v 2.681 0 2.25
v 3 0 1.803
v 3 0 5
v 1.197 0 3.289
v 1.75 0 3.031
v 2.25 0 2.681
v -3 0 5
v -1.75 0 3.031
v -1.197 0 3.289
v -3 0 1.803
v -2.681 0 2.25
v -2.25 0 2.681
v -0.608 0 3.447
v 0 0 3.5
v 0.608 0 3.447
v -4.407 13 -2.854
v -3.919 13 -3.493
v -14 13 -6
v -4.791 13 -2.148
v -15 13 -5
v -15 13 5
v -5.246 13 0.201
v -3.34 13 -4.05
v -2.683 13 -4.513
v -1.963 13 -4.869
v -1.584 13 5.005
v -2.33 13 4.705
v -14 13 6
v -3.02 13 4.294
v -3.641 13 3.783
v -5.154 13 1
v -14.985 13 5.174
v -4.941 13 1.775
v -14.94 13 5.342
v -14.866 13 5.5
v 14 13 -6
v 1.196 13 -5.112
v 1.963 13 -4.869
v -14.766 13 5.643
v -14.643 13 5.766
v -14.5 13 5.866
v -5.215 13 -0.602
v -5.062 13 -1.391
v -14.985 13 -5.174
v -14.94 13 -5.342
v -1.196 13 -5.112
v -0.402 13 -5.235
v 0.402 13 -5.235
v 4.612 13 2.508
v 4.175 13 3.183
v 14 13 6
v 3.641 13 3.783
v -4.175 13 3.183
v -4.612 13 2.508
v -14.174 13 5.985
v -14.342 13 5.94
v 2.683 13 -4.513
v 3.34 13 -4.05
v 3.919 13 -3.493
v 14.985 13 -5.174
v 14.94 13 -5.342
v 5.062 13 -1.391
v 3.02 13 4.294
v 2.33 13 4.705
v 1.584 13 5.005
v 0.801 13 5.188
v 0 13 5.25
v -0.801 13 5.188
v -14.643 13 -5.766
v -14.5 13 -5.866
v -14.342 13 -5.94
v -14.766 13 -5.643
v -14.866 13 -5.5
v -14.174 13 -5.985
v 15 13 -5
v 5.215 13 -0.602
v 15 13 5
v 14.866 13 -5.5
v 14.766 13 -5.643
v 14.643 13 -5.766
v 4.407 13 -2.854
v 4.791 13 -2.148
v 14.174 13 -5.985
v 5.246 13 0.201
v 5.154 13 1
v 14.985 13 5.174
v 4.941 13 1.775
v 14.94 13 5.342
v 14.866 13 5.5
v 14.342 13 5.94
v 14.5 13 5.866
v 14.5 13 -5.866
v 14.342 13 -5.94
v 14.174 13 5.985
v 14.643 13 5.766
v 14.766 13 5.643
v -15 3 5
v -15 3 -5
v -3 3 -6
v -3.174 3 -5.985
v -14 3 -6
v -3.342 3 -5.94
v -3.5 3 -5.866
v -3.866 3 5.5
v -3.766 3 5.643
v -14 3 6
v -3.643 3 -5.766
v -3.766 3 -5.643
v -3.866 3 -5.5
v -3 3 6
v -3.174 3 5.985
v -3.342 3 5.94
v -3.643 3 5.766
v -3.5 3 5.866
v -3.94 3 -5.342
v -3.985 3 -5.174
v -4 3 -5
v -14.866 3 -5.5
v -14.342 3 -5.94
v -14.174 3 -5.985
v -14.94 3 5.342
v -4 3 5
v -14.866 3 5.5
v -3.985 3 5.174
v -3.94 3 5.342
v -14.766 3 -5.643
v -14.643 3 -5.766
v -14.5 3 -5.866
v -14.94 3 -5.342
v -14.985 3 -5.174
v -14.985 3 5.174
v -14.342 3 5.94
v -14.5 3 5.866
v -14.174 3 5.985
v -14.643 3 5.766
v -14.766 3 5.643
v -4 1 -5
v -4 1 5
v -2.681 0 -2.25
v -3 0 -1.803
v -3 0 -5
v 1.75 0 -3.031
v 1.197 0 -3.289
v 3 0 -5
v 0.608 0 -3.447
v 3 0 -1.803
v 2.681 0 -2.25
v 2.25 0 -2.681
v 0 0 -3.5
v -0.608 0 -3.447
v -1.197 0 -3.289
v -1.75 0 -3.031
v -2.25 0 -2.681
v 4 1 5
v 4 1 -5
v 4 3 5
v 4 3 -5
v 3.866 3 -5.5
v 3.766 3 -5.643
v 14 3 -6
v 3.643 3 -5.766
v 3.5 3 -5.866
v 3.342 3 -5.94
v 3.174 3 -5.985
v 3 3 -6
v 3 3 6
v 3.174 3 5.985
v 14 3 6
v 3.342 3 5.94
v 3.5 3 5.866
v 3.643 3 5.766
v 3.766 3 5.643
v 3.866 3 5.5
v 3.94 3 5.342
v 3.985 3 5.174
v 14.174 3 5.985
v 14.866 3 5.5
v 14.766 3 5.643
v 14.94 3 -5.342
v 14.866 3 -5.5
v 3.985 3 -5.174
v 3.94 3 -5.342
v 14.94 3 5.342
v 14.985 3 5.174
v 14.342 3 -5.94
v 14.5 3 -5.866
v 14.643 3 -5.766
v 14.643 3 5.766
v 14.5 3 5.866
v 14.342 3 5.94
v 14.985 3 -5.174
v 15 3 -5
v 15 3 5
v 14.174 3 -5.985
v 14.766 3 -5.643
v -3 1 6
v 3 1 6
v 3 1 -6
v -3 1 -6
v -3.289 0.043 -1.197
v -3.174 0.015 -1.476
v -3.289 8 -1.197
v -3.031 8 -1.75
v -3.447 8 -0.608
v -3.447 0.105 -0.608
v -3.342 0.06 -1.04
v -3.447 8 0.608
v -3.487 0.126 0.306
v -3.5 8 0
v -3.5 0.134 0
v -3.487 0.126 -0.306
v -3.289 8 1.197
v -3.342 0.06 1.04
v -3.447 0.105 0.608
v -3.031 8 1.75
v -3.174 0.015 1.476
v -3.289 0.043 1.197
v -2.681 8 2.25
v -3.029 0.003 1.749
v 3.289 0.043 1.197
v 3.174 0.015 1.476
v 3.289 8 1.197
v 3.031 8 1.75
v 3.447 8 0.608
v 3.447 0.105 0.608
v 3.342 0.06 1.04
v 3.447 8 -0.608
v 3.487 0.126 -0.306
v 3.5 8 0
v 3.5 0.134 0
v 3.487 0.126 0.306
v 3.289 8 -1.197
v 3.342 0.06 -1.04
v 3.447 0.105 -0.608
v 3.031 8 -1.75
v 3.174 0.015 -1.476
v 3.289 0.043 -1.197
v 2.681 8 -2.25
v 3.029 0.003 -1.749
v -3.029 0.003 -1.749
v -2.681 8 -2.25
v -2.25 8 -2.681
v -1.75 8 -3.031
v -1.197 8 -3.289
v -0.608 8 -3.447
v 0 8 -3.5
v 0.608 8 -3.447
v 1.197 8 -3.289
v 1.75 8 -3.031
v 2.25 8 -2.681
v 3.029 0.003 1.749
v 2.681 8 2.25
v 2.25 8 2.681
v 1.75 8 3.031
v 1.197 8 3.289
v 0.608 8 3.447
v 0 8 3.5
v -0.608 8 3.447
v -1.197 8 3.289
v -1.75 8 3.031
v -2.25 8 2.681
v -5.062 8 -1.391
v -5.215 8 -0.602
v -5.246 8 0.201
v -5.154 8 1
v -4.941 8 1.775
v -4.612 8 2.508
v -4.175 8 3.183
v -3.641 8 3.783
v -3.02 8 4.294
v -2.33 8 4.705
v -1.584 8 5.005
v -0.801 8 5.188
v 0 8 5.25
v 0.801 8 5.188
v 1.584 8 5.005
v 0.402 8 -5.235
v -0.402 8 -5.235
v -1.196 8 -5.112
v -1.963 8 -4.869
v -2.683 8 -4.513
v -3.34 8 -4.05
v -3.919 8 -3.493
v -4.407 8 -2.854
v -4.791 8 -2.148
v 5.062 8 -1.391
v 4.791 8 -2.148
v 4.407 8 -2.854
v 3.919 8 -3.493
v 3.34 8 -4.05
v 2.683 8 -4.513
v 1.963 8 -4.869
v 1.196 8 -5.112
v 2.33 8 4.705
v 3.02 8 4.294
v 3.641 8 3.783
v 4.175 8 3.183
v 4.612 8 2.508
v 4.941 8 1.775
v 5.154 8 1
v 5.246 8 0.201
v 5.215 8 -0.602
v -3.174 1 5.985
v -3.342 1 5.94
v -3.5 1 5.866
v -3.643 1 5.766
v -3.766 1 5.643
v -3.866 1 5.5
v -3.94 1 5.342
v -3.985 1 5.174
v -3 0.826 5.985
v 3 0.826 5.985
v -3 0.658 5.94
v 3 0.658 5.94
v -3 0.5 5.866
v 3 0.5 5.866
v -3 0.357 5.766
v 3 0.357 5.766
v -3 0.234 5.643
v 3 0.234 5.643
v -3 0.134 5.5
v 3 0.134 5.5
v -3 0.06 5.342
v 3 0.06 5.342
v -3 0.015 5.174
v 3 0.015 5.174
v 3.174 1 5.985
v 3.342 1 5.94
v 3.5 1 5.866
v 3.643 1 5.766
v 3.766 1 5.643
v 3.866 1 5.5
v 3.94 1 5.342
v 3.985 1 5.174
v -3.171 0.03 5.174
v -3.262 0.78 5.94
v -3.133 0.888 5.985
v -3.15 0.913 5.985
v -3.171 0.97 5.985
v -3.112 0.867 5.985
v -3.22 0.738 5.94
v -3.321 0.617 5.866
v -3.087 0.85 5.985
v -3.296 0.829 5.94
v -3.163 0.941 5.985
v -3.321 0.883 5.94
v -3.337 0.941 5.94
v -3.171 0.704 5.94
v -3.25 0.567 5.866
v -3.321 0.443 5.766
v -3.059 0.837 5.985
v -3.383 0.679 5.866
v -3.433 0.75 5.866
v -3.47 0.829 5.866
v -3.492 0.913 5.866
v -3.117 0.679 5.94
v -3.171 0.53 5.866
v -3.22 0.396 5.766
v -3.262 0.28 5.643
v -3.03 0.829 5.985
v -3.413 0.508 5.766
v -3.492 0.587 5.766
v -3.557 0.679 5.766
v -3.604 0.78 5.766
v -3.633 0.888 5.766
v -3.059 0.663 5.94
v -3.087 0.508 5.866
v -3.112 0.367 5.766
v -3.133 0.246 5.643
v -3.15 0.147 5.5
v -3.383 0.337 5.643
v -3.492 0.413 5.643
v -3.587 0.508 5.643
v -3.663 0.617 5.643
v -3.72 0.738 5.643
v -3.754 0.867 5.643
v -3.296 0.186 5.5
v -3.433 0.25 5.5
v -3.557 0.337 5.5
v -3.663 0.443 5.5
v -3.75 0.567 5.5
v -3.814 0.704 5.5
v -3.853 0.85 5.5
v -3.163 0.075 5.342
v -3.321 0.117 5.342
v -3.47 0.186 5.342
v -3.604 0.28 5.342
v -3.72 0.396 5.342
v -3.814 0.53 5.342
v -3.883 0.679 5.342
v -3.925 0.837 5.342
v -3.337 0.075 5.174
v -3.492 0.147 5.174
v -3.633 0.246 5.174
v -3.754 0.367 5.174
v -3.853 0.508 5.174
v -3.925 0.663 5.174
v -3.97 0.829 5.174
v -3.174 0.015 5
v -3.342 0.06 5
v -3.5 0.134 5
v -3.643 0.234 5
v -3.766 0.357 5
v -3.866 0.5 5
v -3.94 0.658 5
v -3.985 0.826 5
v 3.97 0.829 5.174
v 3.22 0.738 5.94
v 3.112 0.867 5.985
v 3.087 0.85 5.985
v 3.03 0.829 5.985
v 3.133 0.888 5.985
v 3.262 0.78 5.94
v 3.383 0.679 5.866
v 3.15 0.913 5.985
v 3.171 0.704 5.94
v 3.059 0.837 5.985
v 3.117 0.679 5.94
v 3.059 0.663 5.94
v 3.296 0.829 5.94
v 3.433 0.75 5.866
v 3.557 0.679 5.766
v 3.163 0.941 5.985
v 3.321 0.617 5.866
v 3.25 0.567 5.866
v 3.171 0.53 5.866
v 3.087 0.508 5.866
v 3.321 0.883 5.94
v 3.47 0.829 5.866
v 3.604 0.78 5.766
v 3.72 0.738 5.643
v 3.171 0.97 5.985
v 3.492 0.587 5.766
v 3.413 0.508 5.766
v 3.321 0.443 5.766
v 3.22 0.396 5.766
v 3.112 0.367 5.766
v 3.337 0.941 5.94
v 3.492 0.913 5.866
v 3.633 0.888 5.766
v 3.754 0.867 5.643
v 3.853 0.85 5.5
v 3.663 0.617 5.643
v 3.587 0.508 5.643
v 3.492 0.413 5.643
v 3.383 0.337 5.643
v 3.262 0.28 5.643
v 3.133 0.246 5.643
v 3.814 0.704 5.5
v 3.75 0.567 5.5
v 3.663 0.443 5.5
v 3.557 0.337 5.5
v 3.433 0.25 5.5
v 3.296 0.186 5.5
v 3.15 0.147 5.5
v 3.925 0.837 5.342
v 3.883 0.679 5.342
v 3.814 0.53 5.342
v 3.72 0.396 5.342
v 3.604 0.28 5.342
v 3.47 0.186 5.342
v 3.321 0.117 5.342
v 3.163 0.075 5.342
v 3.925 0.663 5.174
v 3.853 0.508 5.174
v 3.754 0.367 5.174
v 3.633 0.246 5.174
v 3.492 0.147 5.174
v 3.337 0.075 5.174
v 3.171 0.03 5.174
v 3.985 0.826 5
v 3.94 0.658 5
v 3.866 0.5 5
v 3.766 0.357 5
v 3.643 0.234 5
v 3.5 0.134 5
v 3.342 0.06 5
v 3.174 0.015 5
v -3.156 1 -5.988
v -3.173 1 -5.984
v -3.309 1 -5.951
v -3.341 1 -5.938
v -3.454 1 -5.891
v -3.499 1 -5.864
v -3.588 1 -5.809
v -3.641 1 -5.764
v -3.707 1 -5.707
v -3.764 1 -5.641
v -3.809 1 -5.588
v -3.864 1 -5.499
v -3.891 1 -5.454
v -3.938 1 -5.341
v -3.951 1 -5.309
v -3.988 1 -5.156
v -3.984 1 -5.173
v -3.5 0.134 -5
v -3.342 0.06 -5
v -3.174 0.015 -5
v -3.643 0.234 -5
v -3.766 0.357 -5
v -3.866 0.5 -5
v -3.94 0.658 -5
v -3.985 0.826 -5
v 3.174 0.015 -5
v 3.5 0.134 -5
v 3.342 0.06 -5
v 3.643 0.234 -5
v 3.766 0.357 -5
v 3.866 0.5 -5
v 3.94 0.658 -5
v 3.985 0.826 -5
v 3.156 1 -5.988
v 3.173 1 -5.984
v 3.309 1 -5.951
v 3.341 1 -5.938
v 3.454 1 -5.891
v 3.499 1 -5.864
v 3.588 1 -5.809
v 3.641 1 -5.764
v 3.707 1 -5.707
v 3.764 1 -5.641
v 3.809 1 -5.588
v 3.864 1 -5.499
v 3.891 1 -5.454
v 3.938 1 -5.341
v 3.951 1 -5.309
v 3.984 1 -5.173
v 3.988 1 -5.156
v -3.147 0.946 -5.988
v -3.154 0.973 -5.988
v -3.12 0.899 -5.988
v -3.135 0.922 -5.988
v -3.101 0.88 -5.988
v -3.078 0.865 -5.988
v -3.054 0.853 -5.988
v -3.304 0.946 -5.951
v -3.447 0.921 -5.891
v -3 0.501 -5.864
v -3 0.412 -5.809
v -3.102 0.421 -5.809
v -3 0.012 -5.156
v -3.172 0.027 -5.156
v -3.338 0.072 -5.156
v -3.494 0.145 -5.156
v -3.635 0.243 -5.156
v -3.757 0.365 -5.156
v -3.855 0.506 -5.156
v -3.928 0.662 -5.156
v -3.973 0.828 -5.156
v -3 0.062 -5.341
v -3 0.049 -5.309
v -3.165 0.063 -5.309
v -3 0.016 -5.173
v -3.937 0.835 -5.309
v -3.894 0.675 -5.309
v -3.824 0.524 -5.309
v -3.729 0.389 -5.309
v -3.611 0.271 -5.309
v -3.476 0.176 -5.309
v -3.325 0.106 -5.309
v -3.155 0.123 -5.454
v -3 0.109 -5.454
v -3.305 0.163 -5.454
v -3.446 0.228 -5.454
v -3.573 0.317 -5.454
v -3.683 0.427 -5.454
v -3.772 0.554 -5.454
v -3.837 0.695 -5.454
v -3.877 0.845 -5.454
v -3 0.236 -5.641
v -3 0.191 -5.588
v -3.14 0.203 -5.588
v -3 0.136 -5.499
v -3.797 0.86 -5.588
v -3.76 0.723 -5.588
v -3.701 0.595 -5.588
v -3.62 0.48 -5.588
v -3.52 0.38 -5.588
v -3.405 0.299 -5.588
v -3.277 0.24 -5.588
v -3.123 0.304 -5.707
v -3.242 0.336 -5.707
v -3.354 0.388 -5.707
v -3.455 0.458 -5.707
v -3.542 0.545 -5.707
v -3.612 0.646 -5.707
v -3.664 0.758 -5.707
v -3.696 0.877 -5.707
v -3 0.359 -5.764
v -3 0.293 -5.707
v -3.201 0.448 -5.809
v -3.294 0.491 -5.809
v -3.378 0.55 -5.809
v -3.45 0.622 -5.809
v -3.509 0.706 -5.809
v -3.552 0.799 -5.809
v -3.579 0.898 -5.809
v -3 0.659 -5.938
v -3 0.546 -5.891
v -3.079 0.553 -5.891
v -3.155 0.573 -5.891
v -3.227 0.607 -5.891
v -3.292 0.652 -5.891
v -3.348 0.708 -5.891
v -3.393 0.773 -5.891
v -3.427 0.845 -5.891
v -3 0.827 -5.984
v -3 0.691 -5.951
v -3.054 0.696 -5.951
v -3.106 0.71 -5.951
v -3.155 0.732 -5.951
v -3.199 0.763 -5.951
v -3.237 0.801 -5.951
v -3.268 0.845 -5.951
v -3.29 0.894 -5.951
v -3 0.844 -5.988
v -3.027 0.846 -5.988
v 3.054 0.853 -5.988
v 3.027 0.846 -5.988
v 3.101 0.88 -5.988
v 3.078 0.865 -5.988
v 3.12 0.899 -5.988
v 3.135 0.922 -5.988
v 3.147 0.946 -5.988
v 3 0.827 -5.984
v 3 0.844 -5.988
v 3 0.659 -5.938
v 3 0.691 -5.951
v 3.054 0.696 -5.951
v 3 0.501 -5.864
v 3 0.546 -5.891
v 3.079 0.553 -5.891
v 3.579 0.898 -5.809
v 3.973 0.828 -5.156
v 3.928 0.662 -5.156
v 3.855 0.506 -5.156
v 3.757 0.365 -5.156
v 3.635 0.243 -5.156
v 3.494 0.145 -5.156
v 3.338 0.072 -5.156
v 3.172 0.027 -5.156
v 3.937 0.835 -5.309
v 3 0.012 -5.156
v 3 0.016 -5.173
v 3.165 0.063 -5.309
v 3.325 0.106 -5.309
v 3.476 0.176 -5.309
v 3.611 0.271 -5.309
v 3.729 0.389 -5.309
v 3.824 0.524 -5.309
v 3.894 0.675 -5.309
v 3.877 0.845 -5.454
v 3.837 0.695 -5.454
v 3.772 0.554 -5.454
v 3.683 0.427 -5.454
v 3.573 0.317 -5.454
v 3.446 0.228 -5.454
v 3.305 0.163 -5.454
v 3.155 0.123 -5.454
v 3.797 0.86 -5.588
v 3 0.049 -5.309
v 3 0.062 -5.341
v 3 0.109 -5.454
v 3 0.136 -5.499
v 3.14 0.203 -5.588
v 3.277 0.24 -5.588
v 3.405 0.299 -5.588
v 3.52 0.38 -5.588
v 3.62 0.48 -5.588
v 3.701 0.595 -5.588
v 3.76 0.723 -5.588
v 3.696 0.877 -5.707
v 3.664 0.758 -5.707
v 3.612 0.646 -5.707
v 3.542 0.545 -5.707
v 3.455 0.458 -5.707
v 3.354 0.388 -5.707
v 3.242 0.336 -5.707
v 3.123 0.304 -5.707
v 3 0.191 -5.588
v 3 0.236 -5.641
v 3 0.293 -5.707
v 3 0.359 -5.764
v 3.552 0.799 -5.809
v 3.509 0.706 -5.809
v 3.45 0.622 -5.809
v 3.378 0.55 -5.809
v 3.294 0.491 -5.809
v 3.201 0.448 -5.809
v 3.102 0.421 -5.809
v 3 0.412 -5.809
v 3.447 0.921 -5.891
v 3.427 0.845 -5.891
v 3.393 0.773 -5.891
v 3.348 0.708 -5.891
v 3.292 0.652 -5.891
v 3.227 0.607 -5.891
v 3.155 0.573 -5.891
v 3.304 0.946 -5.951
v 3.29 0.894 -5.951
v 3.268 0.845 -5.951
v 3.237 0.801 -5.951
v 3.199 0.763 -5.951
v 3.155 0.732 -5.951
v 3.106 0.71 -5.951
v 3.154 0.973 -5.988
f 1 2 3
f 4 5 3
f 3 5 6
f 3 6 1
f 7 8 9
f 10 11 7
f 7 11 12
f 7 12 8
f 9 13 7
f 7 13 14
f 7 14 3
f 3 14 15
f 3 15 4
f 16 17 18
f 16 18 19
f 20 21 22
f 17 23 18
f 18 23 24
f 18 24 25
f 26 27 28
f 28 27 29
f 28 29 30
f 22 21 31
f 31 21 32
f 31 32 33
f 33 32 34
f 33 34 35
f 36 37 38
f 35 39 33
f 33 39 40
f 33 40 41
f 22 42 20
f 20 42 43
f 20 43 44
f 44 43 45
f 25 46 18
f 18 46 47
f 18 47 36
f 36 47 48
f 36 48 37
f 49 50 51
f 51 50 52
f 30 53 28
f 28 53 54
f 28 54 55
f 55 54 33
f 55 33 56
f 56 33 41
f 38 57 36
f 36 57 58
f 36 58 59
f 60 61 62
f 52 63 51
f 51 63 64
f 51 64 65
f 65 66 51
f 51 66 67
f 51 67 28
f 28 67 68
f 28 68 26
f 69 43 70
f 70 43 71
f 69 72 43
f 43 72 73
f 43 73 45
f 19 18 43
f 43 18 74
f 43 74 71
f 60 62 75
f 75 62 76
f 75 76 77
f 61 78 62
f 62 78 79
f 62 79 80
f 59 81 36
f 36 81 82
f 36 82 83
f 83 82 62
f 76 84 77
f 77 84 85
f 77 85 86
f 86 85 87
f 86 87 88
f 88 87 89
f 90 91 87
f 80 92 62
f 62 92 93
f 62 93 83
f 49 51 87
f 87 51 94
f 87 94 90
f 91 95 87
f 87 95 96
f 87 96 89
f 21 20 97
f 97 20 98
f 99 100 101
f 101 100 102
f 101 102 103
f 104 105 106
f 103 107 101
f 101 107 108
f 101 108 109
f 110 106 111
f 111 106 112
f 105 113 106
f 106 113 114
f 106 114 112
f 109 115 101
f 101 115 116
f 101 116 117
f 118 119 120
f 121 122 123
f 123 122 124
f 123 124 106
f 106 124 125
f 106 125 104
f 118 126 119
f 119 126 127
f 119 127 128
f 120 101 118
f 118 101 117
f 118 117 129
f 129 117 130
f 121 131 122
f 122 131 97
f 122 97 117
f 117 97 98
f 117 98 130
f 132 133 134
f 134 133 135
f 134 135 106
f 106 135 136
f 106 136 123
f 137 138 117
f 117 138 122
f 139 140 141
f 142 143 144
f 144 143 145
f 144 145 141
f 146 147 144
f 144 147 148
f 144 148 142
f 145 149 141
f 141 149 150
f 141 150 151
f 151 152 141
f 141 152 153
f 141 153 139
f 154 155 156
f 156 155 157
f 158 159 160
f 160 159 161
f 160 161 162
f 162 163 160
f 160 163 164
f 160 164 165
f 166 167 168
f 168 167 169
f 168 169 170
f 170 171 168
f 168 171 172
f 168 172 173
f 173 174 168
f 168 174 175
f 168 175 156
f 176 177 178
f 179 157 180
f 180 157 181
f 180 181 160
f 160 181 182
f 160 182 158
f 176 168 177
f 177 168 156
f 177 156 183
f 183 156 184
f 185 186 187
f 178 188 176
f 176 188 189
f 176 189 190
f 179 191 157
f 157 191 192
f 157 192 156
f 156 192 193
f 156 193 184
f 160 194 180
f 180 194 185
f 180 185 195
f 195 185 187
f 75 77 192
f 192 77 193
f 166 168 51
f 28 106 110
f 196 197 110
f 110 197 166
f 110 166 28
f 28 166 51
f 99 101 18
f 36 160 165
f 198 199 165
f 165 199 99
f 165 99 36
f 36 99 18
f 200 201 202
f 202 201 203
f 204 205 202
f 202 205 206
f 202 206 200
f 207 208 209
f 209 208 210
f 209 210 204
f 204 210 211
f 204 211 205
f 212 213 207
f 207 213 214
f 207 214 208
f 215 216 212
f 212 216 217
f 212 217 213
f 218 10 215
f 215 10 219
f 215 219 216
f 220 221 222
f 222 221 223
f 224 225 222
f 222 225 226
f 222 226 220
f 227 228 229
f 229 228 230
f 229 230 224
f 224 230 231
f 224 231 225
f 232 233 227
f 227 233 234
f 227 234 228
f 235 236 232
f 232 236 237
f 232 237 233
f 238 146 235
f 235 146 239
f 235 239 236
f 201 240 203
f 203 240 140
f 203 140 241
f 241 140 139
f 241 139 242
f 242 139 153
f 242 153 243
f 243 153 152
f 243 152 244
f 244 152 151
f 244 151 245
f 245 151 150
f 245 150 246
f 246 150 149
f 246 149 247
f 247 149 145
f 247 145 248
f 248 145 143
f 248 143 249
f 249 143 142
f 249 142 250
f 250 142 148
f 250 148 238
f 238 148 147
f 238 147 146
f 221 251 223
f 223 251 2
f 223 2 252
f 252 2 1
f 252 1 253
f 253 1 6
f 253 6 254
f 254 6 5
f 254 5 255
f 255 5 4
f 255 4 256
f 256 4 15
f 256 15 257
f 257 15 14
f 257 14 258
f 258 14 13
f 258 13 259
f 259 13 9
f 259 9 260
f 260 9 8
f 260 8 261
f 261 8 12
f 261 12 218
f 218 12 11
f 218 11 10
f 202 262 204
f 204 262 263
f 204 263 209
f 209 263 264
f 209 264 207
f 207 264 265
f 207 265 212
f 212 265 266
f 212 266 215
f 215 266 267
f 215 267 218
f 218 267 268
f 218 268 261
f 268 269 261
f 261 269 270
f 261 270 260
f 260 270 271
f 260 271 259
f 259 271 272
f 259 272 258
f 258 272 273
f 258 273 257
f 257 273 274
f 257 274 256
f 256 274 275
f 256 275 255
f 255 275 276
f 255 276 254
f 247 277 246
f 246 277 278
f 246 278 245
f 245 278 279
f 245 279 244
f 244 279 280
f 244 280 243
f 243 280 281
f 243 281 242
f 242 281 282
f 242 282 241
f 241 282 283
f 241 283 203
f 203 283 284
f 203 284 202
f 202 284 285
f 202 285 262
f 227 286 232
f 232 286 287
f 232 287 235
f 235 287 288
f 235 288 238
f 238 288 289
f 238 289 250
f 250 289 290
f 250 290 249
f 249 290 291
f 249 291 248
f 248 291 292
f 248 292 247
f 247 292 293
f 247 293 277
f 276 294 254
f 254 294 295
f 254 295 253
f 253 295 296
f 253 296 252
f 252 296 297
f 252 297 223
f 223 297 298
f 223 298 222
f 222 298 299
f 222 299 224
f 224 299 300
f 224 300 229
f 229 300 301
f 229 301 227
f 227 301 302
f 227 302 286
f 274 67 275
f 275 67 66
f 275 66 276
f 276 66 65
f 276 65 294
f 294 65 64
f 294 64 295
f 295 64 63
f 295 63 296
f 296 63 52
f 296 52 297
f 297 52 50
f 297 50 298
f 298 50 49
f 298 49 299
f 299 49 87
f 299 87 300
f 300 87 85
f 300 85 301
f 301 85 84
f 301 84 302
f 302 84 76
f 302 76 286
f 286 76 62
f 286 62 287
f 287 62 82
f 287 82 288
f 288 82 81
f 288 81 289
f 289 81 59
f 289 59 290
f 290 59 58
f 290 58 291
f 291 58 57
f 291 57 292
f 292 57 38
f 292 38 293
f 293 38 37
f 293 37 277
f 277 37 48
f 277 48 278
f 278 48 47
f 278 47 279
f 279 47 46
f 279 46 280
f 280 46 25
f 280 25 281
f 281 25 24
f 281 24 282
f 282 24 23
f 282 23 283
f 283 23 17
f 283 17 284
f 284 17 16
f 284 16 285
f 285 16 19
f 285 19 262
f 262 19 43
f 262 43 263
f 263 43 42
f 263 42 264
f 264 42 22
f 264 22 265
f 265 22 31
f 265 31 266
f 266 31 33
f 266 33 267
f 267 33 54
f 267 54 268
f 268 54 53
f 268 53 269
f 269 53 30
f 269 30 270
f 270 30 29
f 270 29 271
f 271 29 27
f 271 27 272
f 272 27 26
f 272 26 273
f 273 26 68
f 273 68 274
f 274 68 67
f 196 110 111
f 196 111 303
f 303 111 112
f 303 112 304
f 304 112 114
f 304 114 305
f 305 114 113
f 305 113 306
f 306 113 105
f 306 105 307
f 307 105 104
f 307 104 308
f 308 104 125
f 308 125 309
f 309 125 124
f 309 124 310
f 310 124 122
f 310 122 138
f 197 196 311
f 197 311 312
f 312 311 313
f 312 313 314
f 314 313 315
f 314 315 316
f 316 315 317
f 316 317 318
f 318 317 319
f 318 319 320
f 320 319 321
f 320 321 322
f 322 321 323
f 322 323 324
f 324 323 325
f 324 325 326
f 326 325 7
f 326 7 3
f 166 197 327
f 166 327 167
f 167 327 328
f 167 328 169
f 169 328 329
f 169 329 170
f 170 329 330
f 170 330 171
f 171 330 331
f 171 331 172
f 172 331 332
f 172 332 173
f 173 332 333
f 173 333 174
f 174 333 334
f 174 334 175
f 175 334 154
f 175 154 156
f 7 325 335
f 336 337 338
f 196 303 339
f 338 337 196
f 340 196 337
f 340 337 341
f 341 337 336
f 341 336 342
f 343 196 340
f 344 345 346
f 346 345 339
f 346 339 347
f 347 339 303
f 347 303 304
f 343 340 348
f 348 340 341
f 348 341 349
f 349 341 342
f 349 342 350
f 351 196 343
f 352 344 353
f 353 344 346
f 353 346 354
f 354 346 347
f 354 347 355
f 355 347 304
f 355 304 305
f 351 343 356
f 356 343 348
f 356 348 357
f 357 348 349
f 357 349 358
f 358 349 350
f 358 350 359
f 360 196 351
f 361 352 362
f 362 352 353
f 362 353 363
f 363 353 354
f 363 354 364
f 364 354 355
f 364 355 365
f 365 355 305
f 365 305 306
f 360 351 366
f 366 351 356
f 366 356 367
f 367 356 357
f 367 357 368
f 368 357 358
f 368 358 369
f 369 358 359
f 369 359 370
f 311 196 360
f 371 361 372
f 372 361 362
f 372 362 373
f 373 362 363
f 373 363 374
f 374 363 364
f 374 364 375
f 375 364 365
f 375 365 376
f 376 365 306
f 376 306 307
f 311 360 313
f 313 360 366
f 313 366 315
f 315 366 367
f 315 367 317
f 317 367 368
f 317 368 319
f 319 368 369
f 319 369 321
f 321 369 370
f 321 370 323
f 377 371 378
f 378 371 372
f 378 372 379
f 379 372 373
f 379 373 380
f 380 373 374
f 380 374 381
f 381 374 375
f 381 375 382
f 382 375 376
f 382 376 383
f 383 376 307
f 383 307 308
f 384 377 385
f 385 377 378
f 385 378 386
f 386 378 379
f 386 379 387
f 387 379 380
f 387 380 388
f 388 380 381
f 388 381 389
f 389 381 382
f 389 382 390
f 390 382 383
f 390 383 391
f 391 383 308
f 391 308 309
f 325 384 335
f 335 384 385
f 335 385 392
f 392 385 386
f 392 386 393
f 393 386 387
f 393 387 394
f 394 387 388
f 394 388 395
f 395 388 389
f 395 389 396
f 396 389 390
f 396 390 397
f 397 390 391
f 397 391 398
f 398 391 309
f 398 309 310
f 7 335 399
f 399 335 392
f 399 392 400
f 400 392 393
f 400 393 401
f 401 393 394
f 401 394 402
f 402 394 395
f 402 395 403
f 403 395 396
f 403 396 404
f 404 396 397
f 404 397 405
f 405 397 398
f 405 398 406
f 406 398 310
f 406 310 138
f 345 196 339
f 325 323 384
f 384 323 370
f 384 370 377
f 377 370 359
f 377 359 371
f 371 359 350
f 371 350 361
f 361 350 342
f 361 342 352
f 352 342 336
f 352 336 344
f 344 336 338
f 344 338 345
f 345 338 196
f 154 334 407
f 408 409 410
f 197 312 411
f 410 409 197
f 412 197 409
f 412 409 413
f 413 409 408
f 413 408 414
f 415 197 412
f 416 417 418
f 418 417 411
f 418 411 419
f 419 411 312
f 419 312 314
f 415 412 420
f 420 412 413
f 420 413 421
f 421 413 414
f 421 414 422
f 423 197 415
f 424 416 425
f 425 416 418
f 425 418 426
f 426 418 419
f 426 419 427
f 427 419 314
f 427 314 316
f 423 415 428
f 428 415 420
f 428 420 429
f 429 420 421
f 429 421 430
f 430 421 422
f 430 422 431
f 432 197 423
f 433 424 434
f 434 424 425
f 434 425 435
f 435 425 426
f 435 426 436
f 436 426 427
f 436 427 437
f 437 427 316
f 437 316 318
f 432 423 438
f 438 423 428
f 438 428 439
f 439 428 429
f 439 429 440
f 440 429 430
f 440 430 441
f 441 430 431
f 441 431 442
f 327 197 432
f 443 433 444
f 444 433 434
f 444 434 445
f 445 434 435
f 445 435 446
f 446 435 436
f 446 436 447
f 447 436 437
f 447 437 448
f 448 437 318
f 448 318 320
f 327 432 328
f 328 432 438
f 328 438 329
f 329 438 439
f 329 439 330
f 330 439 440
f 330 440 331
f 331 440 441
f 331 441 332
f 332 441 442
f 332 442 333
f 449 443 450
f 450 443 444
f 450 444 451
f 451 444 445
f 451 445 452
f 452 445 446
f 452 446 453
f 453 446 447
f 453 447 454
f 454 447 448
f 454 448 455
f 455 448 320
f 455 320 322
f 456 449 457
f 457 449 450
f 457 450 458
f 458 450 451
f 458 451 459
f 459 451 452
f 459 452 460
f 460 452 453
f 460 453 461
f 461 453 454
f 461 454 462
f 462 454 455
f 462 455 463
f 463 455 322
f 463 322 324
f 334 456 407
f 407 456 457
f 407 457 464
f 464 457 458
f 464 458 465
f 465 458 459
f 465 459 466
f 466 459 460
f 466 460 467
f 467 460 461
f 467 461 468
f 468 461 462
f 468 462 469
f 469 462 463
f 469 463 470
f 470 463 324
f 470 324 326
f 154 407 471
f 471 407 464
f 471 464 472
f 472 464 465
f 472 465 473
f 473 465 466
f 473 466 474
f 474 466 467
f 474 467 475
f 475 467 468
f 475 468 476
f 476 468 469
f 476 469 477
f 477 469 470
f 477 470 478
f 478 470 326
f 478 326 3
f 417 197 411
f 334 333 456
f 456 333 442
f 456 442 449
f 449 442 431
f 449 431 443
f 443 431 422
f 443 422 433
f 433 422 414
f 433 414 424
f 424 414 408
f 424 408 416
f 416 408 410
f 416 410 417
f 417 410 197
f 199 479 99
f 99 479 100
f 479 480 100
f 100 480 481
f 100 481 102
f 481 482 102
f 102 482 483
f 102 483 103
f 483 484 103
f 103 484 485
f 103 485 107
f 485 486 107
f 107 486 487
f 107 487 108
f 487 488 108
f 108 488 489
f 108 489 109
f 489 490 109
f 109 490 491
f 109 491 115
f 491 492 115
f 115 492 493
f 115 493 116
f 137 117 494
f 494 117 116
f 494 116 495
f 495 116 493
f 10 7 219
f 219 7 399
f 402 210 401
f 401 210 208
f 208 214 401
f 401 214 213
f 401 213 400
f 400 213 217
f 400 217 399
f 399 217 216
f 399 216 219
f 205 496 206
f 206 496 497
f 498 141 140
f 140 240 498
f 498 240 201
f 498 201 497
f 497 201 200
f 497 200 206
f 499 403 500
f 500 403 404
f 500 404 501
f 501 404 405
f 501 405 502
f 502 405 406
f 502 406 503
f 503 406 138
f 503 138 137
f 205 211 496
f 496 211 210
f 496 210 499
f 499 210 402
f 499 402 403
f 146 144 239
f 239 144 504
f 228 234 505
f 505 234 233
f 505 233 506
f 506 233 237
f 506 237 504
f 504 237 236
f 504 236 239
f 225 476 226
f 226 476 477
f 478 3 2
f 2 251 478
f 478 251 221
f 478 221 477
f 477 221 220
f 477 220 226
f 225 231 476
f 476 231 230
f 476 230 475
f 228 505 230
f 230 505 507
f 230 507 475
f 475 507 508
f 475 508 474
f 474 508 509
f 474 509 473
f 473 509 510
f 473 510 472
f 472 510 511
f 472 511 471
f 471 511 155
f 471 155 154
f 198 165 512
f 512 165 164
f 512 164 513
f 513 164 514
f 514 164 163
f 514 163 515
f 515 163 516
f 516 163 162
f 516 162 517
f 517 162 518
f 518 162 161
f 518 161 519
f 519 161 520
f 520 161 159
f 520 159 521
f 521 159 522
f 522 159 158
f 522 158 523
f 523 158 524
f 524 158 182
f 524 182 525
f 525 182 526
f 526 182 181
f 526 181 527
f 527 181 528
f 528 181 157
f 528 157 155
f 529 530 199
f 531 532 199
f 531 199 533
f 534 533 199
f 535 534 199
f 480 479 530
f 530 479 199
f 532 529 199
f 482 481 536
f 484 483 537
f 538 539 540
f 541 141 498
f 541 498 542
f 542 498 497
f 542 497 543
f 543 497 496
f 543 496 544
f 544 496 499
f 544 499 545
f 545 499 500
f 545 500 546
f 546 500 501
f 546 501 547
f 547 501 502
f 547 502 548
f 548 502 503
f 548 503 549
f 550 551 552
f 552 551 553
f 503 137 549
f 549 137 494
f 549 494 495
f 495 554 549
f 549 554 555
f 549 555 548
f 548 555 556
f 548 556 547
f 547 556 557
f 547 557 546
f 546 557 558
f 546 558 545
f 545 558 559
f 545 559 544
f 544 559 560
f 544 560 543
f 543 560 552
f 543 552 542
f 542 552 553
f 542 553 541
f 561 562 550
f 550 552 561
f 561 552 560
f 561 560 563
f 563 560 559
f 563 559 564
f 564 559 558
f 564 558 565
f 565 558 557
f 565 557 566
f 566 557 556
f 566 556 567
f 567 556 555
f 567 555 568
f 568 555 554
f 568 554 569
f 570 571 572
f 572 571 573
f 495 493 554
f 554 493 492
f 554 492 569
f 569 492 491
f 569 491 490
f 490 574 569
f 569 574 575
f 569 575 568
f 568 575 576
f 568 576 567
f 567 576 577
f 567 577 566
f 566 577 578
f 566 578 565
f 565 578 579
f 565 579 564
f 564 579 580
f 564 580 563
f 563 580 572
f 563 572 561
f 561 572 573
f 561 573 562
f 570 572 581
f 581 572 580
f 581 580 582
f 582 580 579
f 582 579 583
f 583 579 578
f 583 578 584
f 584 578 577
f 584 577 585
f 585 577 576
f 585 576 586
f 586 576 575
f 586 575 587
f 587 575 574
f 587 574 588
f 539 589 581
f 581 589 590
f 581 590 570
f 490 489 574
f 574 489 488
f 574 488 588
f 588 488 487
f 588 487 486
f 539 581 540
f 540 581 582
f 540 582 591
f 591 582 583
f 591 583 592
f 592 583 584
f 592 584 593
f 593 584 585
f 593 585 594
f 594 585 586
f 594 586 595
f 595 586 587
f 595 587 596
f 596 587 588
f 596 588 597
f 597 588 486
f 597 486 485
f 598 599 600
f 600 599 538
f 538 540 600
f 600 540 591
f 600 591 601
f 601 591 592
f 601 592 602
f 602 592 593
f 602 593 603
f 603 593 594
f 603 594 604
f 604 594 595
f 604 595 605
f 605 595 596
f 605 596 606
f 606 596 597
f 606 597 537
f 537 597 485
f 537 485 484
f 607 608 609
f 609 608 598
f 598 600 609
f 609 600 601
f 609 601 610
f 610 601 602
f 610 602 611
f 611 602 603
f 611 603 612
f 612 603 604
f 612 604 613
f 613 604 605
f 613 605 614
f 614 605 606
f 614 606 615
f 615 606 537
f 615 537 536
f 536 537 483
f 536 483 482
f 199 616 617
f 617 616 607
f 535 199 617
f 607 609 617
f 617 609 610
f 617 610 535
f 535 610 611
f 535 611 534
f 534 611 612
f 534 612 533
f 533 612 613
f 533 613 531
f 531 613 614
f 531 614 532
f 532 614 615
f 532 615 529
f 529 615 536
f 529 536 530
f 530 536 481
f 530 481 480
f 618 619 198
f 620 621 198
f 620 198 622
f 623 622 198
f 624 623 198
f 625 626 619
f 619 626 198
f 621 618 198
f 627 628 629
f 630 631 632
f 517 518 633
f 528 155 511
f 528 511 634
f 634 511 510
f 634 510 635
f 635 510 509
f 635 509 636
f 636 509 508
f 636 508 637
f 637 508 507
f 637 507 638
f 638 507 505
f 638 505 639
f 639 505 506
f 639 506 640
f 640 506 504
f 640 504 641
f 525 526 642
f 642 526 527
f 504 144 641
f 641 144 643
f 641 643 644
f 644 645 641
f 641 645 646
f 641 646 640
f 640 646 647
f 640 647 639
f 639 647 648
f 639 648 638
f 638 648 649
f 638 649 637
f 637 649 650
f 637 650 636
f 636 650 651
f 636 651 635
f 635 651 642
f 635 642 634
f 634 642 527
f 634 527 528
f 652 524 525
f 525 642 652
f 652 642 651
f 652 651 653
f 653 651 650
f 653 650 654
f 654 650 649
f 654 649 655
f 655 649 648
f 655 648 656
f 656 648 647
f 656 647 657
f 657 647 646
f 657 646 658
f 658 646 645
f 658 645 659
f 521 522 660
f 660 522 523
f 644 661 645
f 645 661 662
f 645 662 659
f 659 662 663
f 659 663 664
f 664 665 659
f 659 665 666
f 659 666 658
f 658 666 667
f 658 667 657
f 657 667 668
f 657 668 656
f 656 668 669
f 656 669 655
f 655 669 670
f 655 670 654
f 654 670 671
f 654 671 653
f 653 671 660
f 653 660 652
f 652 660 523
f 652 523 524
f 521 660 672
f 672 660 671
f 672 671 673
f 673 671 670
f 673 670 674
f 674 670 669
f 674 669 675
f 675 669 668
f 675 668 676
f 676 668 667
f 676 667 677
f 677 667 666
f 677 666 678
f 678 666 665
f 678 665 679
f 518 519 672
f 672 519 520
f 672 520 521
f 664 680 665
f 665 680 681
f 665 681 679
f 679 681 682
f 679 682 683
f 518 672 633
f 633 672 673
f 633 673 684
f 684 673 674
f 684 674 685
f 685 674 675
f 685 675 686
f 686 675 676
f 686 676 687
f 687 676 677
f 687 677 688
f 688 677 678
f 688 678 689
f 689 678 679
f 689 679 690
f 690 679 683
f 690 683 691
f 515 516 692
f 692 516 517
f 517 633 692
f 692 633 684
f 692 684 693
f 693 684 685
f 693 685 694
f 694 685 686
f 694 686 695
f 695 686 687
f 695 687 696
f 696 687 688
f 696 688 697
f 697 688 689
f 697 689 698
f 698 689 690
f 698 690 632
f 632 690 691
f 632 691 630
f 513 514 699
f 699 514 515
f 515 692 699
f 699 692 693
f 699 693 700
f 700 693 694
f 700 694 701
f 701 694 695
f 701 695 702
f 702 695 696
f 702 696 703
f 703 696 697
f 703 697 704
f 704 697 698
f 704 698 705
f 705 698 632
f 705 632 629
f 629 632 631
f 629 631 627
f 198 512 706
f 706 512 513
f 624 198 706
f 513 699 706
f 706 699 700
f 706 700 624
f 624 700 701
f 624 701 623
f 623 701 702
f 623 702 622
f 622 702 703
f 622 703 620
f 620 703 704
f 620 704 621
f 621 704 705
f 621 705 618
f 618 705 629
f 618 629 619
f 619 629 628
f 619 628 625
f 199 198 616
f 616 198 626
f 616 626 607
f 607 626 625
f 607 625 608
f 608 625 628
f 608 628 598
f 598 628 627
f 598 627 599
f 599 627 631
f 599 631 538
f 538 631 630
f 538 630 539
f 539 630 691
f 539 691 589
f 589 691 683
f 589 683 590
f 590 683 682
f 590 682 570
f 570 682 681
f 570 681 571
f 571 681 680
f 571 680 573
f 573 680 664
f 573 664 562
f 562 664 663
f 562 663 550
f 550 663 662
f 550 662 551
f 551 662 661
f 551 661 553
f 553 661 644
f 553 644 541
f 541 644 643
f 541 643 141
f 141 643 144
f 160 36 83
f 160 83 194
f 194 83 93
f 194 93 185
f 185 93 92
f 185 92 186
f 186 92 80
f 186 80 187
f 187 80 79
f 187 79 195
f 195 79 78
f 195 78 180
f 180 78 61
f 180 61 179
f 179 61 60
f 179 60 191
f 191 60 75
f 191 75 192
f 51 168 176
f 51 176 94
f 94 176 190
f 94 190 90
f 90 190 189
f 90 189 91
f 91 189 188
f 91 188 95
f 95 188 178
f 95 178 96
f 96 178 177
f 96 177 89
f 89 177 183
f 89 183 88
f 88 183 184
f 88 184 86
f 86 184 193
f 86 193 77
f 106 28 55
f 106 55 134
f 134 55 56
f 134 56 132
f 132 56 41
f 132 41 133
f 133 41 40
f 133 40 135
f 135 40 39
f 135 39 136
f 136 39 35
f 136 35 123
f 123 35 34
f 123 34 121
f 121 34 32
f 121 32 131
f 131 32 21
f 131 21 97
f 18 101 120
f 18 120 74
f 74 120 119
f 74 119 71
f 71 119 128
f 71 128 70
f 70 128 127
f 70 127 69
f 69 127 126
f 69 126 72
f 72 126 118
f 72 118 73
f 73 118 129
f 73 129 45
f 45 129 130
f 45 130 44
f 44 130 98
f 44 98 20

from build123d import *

# Parameters (mm, degrees)
BOSS_EXTRUDE1_DEPTH            = 6
CBORE_FOR_M6_SHCS1_D           = 7
CBORE_FOR_M6_SHCS1_CBORE_D     = 10.5
CBORE_FOR_M6_SHCS1_CBORE_DEPTH = 5
FILLET1_R                      = 1


with BuildPart() as part:
    # Sketch1 → Boss-Extrude1 (new, symmetric)
    with BuildSketch(Plane.XY):
        Polygon((-15, 13), (-15, 3), (-4, 3), (-4, 0), (4, 0), (4, 3), (15, 3), (15, 13), align=None)
    extrude(amount=BOSS_EXTRUDE1_DEPTH, both=True)

    # CBORE for M6 SHCS1 (through all)
    with Locations(Plane(origin=(0, 13, 0), x_dir=(1, 0, 0), z_dir=(0, 1, 0))):
        with Locations((0, 0)):
            CounterBoreHole(CBORE_FOR_M6_SHCS1_D / 2, CBORE_FOR_M6_SHCS1_CBORE_D / 2, CBORE_FOR_M6_SHCS1_CBORE_DEPTH)

    # Fillet1
    # the kernel refuses this fillet: 1 mm, written as the material it takes off along each edge
    with BuildSketch(Plane(origin=(-3, 1, 5), x_dir=(-1, 0, 0), z_dir=(0, 0, 1))) as fillet1_piece_1_section:
        Polygon((0, 0), (FILLET1_R, 0), (FILLET1_R, FILLET1_R), (0, FILLET1_R), align=None)
    fillet1_piece_1 = extrude(amount=FILLET1_R, mode=Mode.PRIVATE)
    fillet1_piece_1 = fillet1_piece_1 - Plane(origin=(-3, 1, 5), x_dir=(0.7071067811865475, 0.7071067811865475, 0), z_dir=(0, 0, 1)) * Sphere(FILLET1_R, mode=Mode.PRIVATE)
    add(fillet1_piece_1, mode=Mode.SUBTRACT)
    with BuildSketch(Plane(origin=(3, 1, -5), x_dir=(0, -1, 0), z_dir=(0, 0, -1))) as fillet1_piece_2_section:
        Polygon((0, 0), (FILLET1_R, 0), (FILLET1_R, -FILLET1_R), (0, -FILLET1_R), align=None)
    fillet1_piece_2 = extrude(amount=FILLET1_R, mode=Mode.PRIVATE)
    fillet1_piece_2 = fillet1_piece_2 - Plane(origin=(3, 1, -5), x_dir=(-0.7071067811865475, 0.7071067811865475, 0), z_dir=(0, 0, -1)) * Sphere(FILLET1_R, mode=Mode.PRIVATE)
    add(fillet1_piece_2, mode=Mode.SUBTRACT)
    with BuildSketch(Plane(origin=(3, 1, 5), x_dir=(0, -1, 0), z_dir=(0, 0, 1))) as fillet1_piece_3_section:
        Polygon((0, 0), (FILLET1_R, 0), (FILLET1_R, FILLET1_R), (0, FILLET1_R), align=None)
    fillet1_piece_3 = extrude(amount=FILLET1_R, mode=Mode.PRIVATE)
    fillet1_piece_3 = fillet1_piece_3 - Plane(origin=(3, 1, 5), x_dir=(-0.7071067811865475, 0.7071067811865475, 0), z_dir=(0, 0, 1)) * Sphere(FILLET1_R, mode=Mode.PRIVATE)
    add(fillet1_piece_3, mode=Mode.SUBTRACT)
    with BuildSketch(Plane(origin=(-3, 1, -5), x_dir=(-1, 0, 0), z_dir=(0, 0, -1))) as fillet1_piece_4_section:
        Polygon((0, 0), (FILLET1_R, 0), (FILLET1_R, -FILLET1_R), (0, -FILLET1_R), align=None)
    fillet1_piece_4 = extrude(amount=FILLET1_R, mode=Mode.PRIVATE)
    fillet1_piece_4 = fillet1_piece_4 - Plane(origin=(-3, 1, -5), x_dir=(0.7071067811865475, 0.7071067811865475, 0), z_dir=(0, 0, -1)) * Sphere(FILLET1_R, mode=Mode.PRIVATE)
    add(fillet1_piece_4, mode=Mode.SUBTRACT)
    with BuildSketch(Plane(origin=(-15, 15.5, -6), x_dir=(0, 0, 1), z_dir=(0, -1, 0)), Plane(origin=(15, 0.5, 6), x_dir=(-1, 0, 0), z_dir=(0, 1, 0))) as fillet1_piece_5:
        with BuildLine():
            CenterArc((FILLET1_R, -FILLET1_R), FILLET1_R, 90, 90)
            Line((0, -FILLET1_R), (0, 0))
            Line((0, 0), (FILLET1_R, 0))
        make_face()
    extrude(amount=15, mode=Mode.SUBTRACT)
    with BuildSketch(Plane(origin=(-4, 3, 6), x_dir=(1, 0, 0), z_dir=(0, -1, 0)), Plane(origin=(4, 1, 6), x_dir=(-1, 0, 0), z_dir=(0, 1, 0))) as fillet1_piece_6:
        with BuildLine():
            CenterArc((FILLET1_R, -FILLET1_R), FILLET1_R, 90, 90)
            Line((0, -FILLET1_R), (0, 0))
            Line((0, 0), (FILLET1_R, 0))
        make_face()
    extrude(amount=2, mode=Mode.SUBTRACT)
    with BuildSketch(Plane(origin=(4, 0, -5), x_dir=(-1, 0, 0), z_dir=(0, 0, 1)), Plane(origin=(-4, 0, -5), x_dir=(0, 1, 0), z_dir=(0, 0, 1))) as fillet1_piece_7:
        with BuildLine():
            CenterArc((FILLET1_R, -FILLET1_R), FILLET1_R, 90, 90)
            Line((0, -FILLET1_R), (0, 0))
            Line((0, 0), (FILLET1_R, 0))
        make_face()
    extrude(amount=10, mode=Mode.SUBTRACT)
    with BuildSketch(Plane(origin=(-3, 0, 6), x_dir=(0, 1, 0), z_dir=(1, 0, 0))) as fillet1_piece_8:
        with BuildLine():
            CenterArc((FILLET1_R, -FILLET1_R), FILLET1_R, 90, 90)
            Line((0, -FILLET1_R), (0, 0))
            Line((0, 0), (FILLET1_R, 0))
        make_face()
    extrude(amount=6, mode=Mode.SUBTRACT)
    with BuildSketch(Plane(origin=(-15, 15.5, 6), x_dir=(0, 0, -1), z_dir=(0, -1, 0)), Plane(origin=(15, 0.5, -6), x_dir=(-1, 0, 0), z_dir=(0, 1, 0))) as fillet1_piece_9:
        with BuildLine():
            CenterArc((FILLET1_R, FILLET1_R), FILLET1_R, 180, 90)
            Line((0, FILLET1_R), (0, 0))
            Line((0, 0), (FILLET1_R, 0))
        make_face()
    extrude(amount=15, mode=Mode.SUBTRACT)
    with BuildSketch(Plane(origin=(4, 1, -6), x_dir=(-1, 0, 0), z_dir=(0, 1, 0)), Plane(origin=(-4, 3, -6), x_dir=(1, 0, 0), z_dir=(0, -1, 0))) as fillet1_piece_10:
        with BuildLine():
            CenterArc((FILLET1_R, FILLET1_R), FILLET1_R, 180, 90)
            Line((0, FILLET1_R), (0, 0))
            Line((0, 0), (FILLET1_R, 0))
        make_face()
    extrude(amount=2, mode=Mode.SUBTRACT)
    with BuildSketch(Plane(origin=(-3, 0, -6), x_dir=(0, 1, 0), z_dir=(1, 0, 0))) as fillet1_piece_11:
        with BuildLine():
            CenterArc((FILLET1_R, FILLET1_R), FILLET1_R, 180, 90)
            Line((0, FILLET1_R), (0, 0))
            Line((0, 0), (FILLET1_R, 0))
        make_face()
    extrude(amount=6, mode=Mode.SUBTRACT)


solid = part.part
